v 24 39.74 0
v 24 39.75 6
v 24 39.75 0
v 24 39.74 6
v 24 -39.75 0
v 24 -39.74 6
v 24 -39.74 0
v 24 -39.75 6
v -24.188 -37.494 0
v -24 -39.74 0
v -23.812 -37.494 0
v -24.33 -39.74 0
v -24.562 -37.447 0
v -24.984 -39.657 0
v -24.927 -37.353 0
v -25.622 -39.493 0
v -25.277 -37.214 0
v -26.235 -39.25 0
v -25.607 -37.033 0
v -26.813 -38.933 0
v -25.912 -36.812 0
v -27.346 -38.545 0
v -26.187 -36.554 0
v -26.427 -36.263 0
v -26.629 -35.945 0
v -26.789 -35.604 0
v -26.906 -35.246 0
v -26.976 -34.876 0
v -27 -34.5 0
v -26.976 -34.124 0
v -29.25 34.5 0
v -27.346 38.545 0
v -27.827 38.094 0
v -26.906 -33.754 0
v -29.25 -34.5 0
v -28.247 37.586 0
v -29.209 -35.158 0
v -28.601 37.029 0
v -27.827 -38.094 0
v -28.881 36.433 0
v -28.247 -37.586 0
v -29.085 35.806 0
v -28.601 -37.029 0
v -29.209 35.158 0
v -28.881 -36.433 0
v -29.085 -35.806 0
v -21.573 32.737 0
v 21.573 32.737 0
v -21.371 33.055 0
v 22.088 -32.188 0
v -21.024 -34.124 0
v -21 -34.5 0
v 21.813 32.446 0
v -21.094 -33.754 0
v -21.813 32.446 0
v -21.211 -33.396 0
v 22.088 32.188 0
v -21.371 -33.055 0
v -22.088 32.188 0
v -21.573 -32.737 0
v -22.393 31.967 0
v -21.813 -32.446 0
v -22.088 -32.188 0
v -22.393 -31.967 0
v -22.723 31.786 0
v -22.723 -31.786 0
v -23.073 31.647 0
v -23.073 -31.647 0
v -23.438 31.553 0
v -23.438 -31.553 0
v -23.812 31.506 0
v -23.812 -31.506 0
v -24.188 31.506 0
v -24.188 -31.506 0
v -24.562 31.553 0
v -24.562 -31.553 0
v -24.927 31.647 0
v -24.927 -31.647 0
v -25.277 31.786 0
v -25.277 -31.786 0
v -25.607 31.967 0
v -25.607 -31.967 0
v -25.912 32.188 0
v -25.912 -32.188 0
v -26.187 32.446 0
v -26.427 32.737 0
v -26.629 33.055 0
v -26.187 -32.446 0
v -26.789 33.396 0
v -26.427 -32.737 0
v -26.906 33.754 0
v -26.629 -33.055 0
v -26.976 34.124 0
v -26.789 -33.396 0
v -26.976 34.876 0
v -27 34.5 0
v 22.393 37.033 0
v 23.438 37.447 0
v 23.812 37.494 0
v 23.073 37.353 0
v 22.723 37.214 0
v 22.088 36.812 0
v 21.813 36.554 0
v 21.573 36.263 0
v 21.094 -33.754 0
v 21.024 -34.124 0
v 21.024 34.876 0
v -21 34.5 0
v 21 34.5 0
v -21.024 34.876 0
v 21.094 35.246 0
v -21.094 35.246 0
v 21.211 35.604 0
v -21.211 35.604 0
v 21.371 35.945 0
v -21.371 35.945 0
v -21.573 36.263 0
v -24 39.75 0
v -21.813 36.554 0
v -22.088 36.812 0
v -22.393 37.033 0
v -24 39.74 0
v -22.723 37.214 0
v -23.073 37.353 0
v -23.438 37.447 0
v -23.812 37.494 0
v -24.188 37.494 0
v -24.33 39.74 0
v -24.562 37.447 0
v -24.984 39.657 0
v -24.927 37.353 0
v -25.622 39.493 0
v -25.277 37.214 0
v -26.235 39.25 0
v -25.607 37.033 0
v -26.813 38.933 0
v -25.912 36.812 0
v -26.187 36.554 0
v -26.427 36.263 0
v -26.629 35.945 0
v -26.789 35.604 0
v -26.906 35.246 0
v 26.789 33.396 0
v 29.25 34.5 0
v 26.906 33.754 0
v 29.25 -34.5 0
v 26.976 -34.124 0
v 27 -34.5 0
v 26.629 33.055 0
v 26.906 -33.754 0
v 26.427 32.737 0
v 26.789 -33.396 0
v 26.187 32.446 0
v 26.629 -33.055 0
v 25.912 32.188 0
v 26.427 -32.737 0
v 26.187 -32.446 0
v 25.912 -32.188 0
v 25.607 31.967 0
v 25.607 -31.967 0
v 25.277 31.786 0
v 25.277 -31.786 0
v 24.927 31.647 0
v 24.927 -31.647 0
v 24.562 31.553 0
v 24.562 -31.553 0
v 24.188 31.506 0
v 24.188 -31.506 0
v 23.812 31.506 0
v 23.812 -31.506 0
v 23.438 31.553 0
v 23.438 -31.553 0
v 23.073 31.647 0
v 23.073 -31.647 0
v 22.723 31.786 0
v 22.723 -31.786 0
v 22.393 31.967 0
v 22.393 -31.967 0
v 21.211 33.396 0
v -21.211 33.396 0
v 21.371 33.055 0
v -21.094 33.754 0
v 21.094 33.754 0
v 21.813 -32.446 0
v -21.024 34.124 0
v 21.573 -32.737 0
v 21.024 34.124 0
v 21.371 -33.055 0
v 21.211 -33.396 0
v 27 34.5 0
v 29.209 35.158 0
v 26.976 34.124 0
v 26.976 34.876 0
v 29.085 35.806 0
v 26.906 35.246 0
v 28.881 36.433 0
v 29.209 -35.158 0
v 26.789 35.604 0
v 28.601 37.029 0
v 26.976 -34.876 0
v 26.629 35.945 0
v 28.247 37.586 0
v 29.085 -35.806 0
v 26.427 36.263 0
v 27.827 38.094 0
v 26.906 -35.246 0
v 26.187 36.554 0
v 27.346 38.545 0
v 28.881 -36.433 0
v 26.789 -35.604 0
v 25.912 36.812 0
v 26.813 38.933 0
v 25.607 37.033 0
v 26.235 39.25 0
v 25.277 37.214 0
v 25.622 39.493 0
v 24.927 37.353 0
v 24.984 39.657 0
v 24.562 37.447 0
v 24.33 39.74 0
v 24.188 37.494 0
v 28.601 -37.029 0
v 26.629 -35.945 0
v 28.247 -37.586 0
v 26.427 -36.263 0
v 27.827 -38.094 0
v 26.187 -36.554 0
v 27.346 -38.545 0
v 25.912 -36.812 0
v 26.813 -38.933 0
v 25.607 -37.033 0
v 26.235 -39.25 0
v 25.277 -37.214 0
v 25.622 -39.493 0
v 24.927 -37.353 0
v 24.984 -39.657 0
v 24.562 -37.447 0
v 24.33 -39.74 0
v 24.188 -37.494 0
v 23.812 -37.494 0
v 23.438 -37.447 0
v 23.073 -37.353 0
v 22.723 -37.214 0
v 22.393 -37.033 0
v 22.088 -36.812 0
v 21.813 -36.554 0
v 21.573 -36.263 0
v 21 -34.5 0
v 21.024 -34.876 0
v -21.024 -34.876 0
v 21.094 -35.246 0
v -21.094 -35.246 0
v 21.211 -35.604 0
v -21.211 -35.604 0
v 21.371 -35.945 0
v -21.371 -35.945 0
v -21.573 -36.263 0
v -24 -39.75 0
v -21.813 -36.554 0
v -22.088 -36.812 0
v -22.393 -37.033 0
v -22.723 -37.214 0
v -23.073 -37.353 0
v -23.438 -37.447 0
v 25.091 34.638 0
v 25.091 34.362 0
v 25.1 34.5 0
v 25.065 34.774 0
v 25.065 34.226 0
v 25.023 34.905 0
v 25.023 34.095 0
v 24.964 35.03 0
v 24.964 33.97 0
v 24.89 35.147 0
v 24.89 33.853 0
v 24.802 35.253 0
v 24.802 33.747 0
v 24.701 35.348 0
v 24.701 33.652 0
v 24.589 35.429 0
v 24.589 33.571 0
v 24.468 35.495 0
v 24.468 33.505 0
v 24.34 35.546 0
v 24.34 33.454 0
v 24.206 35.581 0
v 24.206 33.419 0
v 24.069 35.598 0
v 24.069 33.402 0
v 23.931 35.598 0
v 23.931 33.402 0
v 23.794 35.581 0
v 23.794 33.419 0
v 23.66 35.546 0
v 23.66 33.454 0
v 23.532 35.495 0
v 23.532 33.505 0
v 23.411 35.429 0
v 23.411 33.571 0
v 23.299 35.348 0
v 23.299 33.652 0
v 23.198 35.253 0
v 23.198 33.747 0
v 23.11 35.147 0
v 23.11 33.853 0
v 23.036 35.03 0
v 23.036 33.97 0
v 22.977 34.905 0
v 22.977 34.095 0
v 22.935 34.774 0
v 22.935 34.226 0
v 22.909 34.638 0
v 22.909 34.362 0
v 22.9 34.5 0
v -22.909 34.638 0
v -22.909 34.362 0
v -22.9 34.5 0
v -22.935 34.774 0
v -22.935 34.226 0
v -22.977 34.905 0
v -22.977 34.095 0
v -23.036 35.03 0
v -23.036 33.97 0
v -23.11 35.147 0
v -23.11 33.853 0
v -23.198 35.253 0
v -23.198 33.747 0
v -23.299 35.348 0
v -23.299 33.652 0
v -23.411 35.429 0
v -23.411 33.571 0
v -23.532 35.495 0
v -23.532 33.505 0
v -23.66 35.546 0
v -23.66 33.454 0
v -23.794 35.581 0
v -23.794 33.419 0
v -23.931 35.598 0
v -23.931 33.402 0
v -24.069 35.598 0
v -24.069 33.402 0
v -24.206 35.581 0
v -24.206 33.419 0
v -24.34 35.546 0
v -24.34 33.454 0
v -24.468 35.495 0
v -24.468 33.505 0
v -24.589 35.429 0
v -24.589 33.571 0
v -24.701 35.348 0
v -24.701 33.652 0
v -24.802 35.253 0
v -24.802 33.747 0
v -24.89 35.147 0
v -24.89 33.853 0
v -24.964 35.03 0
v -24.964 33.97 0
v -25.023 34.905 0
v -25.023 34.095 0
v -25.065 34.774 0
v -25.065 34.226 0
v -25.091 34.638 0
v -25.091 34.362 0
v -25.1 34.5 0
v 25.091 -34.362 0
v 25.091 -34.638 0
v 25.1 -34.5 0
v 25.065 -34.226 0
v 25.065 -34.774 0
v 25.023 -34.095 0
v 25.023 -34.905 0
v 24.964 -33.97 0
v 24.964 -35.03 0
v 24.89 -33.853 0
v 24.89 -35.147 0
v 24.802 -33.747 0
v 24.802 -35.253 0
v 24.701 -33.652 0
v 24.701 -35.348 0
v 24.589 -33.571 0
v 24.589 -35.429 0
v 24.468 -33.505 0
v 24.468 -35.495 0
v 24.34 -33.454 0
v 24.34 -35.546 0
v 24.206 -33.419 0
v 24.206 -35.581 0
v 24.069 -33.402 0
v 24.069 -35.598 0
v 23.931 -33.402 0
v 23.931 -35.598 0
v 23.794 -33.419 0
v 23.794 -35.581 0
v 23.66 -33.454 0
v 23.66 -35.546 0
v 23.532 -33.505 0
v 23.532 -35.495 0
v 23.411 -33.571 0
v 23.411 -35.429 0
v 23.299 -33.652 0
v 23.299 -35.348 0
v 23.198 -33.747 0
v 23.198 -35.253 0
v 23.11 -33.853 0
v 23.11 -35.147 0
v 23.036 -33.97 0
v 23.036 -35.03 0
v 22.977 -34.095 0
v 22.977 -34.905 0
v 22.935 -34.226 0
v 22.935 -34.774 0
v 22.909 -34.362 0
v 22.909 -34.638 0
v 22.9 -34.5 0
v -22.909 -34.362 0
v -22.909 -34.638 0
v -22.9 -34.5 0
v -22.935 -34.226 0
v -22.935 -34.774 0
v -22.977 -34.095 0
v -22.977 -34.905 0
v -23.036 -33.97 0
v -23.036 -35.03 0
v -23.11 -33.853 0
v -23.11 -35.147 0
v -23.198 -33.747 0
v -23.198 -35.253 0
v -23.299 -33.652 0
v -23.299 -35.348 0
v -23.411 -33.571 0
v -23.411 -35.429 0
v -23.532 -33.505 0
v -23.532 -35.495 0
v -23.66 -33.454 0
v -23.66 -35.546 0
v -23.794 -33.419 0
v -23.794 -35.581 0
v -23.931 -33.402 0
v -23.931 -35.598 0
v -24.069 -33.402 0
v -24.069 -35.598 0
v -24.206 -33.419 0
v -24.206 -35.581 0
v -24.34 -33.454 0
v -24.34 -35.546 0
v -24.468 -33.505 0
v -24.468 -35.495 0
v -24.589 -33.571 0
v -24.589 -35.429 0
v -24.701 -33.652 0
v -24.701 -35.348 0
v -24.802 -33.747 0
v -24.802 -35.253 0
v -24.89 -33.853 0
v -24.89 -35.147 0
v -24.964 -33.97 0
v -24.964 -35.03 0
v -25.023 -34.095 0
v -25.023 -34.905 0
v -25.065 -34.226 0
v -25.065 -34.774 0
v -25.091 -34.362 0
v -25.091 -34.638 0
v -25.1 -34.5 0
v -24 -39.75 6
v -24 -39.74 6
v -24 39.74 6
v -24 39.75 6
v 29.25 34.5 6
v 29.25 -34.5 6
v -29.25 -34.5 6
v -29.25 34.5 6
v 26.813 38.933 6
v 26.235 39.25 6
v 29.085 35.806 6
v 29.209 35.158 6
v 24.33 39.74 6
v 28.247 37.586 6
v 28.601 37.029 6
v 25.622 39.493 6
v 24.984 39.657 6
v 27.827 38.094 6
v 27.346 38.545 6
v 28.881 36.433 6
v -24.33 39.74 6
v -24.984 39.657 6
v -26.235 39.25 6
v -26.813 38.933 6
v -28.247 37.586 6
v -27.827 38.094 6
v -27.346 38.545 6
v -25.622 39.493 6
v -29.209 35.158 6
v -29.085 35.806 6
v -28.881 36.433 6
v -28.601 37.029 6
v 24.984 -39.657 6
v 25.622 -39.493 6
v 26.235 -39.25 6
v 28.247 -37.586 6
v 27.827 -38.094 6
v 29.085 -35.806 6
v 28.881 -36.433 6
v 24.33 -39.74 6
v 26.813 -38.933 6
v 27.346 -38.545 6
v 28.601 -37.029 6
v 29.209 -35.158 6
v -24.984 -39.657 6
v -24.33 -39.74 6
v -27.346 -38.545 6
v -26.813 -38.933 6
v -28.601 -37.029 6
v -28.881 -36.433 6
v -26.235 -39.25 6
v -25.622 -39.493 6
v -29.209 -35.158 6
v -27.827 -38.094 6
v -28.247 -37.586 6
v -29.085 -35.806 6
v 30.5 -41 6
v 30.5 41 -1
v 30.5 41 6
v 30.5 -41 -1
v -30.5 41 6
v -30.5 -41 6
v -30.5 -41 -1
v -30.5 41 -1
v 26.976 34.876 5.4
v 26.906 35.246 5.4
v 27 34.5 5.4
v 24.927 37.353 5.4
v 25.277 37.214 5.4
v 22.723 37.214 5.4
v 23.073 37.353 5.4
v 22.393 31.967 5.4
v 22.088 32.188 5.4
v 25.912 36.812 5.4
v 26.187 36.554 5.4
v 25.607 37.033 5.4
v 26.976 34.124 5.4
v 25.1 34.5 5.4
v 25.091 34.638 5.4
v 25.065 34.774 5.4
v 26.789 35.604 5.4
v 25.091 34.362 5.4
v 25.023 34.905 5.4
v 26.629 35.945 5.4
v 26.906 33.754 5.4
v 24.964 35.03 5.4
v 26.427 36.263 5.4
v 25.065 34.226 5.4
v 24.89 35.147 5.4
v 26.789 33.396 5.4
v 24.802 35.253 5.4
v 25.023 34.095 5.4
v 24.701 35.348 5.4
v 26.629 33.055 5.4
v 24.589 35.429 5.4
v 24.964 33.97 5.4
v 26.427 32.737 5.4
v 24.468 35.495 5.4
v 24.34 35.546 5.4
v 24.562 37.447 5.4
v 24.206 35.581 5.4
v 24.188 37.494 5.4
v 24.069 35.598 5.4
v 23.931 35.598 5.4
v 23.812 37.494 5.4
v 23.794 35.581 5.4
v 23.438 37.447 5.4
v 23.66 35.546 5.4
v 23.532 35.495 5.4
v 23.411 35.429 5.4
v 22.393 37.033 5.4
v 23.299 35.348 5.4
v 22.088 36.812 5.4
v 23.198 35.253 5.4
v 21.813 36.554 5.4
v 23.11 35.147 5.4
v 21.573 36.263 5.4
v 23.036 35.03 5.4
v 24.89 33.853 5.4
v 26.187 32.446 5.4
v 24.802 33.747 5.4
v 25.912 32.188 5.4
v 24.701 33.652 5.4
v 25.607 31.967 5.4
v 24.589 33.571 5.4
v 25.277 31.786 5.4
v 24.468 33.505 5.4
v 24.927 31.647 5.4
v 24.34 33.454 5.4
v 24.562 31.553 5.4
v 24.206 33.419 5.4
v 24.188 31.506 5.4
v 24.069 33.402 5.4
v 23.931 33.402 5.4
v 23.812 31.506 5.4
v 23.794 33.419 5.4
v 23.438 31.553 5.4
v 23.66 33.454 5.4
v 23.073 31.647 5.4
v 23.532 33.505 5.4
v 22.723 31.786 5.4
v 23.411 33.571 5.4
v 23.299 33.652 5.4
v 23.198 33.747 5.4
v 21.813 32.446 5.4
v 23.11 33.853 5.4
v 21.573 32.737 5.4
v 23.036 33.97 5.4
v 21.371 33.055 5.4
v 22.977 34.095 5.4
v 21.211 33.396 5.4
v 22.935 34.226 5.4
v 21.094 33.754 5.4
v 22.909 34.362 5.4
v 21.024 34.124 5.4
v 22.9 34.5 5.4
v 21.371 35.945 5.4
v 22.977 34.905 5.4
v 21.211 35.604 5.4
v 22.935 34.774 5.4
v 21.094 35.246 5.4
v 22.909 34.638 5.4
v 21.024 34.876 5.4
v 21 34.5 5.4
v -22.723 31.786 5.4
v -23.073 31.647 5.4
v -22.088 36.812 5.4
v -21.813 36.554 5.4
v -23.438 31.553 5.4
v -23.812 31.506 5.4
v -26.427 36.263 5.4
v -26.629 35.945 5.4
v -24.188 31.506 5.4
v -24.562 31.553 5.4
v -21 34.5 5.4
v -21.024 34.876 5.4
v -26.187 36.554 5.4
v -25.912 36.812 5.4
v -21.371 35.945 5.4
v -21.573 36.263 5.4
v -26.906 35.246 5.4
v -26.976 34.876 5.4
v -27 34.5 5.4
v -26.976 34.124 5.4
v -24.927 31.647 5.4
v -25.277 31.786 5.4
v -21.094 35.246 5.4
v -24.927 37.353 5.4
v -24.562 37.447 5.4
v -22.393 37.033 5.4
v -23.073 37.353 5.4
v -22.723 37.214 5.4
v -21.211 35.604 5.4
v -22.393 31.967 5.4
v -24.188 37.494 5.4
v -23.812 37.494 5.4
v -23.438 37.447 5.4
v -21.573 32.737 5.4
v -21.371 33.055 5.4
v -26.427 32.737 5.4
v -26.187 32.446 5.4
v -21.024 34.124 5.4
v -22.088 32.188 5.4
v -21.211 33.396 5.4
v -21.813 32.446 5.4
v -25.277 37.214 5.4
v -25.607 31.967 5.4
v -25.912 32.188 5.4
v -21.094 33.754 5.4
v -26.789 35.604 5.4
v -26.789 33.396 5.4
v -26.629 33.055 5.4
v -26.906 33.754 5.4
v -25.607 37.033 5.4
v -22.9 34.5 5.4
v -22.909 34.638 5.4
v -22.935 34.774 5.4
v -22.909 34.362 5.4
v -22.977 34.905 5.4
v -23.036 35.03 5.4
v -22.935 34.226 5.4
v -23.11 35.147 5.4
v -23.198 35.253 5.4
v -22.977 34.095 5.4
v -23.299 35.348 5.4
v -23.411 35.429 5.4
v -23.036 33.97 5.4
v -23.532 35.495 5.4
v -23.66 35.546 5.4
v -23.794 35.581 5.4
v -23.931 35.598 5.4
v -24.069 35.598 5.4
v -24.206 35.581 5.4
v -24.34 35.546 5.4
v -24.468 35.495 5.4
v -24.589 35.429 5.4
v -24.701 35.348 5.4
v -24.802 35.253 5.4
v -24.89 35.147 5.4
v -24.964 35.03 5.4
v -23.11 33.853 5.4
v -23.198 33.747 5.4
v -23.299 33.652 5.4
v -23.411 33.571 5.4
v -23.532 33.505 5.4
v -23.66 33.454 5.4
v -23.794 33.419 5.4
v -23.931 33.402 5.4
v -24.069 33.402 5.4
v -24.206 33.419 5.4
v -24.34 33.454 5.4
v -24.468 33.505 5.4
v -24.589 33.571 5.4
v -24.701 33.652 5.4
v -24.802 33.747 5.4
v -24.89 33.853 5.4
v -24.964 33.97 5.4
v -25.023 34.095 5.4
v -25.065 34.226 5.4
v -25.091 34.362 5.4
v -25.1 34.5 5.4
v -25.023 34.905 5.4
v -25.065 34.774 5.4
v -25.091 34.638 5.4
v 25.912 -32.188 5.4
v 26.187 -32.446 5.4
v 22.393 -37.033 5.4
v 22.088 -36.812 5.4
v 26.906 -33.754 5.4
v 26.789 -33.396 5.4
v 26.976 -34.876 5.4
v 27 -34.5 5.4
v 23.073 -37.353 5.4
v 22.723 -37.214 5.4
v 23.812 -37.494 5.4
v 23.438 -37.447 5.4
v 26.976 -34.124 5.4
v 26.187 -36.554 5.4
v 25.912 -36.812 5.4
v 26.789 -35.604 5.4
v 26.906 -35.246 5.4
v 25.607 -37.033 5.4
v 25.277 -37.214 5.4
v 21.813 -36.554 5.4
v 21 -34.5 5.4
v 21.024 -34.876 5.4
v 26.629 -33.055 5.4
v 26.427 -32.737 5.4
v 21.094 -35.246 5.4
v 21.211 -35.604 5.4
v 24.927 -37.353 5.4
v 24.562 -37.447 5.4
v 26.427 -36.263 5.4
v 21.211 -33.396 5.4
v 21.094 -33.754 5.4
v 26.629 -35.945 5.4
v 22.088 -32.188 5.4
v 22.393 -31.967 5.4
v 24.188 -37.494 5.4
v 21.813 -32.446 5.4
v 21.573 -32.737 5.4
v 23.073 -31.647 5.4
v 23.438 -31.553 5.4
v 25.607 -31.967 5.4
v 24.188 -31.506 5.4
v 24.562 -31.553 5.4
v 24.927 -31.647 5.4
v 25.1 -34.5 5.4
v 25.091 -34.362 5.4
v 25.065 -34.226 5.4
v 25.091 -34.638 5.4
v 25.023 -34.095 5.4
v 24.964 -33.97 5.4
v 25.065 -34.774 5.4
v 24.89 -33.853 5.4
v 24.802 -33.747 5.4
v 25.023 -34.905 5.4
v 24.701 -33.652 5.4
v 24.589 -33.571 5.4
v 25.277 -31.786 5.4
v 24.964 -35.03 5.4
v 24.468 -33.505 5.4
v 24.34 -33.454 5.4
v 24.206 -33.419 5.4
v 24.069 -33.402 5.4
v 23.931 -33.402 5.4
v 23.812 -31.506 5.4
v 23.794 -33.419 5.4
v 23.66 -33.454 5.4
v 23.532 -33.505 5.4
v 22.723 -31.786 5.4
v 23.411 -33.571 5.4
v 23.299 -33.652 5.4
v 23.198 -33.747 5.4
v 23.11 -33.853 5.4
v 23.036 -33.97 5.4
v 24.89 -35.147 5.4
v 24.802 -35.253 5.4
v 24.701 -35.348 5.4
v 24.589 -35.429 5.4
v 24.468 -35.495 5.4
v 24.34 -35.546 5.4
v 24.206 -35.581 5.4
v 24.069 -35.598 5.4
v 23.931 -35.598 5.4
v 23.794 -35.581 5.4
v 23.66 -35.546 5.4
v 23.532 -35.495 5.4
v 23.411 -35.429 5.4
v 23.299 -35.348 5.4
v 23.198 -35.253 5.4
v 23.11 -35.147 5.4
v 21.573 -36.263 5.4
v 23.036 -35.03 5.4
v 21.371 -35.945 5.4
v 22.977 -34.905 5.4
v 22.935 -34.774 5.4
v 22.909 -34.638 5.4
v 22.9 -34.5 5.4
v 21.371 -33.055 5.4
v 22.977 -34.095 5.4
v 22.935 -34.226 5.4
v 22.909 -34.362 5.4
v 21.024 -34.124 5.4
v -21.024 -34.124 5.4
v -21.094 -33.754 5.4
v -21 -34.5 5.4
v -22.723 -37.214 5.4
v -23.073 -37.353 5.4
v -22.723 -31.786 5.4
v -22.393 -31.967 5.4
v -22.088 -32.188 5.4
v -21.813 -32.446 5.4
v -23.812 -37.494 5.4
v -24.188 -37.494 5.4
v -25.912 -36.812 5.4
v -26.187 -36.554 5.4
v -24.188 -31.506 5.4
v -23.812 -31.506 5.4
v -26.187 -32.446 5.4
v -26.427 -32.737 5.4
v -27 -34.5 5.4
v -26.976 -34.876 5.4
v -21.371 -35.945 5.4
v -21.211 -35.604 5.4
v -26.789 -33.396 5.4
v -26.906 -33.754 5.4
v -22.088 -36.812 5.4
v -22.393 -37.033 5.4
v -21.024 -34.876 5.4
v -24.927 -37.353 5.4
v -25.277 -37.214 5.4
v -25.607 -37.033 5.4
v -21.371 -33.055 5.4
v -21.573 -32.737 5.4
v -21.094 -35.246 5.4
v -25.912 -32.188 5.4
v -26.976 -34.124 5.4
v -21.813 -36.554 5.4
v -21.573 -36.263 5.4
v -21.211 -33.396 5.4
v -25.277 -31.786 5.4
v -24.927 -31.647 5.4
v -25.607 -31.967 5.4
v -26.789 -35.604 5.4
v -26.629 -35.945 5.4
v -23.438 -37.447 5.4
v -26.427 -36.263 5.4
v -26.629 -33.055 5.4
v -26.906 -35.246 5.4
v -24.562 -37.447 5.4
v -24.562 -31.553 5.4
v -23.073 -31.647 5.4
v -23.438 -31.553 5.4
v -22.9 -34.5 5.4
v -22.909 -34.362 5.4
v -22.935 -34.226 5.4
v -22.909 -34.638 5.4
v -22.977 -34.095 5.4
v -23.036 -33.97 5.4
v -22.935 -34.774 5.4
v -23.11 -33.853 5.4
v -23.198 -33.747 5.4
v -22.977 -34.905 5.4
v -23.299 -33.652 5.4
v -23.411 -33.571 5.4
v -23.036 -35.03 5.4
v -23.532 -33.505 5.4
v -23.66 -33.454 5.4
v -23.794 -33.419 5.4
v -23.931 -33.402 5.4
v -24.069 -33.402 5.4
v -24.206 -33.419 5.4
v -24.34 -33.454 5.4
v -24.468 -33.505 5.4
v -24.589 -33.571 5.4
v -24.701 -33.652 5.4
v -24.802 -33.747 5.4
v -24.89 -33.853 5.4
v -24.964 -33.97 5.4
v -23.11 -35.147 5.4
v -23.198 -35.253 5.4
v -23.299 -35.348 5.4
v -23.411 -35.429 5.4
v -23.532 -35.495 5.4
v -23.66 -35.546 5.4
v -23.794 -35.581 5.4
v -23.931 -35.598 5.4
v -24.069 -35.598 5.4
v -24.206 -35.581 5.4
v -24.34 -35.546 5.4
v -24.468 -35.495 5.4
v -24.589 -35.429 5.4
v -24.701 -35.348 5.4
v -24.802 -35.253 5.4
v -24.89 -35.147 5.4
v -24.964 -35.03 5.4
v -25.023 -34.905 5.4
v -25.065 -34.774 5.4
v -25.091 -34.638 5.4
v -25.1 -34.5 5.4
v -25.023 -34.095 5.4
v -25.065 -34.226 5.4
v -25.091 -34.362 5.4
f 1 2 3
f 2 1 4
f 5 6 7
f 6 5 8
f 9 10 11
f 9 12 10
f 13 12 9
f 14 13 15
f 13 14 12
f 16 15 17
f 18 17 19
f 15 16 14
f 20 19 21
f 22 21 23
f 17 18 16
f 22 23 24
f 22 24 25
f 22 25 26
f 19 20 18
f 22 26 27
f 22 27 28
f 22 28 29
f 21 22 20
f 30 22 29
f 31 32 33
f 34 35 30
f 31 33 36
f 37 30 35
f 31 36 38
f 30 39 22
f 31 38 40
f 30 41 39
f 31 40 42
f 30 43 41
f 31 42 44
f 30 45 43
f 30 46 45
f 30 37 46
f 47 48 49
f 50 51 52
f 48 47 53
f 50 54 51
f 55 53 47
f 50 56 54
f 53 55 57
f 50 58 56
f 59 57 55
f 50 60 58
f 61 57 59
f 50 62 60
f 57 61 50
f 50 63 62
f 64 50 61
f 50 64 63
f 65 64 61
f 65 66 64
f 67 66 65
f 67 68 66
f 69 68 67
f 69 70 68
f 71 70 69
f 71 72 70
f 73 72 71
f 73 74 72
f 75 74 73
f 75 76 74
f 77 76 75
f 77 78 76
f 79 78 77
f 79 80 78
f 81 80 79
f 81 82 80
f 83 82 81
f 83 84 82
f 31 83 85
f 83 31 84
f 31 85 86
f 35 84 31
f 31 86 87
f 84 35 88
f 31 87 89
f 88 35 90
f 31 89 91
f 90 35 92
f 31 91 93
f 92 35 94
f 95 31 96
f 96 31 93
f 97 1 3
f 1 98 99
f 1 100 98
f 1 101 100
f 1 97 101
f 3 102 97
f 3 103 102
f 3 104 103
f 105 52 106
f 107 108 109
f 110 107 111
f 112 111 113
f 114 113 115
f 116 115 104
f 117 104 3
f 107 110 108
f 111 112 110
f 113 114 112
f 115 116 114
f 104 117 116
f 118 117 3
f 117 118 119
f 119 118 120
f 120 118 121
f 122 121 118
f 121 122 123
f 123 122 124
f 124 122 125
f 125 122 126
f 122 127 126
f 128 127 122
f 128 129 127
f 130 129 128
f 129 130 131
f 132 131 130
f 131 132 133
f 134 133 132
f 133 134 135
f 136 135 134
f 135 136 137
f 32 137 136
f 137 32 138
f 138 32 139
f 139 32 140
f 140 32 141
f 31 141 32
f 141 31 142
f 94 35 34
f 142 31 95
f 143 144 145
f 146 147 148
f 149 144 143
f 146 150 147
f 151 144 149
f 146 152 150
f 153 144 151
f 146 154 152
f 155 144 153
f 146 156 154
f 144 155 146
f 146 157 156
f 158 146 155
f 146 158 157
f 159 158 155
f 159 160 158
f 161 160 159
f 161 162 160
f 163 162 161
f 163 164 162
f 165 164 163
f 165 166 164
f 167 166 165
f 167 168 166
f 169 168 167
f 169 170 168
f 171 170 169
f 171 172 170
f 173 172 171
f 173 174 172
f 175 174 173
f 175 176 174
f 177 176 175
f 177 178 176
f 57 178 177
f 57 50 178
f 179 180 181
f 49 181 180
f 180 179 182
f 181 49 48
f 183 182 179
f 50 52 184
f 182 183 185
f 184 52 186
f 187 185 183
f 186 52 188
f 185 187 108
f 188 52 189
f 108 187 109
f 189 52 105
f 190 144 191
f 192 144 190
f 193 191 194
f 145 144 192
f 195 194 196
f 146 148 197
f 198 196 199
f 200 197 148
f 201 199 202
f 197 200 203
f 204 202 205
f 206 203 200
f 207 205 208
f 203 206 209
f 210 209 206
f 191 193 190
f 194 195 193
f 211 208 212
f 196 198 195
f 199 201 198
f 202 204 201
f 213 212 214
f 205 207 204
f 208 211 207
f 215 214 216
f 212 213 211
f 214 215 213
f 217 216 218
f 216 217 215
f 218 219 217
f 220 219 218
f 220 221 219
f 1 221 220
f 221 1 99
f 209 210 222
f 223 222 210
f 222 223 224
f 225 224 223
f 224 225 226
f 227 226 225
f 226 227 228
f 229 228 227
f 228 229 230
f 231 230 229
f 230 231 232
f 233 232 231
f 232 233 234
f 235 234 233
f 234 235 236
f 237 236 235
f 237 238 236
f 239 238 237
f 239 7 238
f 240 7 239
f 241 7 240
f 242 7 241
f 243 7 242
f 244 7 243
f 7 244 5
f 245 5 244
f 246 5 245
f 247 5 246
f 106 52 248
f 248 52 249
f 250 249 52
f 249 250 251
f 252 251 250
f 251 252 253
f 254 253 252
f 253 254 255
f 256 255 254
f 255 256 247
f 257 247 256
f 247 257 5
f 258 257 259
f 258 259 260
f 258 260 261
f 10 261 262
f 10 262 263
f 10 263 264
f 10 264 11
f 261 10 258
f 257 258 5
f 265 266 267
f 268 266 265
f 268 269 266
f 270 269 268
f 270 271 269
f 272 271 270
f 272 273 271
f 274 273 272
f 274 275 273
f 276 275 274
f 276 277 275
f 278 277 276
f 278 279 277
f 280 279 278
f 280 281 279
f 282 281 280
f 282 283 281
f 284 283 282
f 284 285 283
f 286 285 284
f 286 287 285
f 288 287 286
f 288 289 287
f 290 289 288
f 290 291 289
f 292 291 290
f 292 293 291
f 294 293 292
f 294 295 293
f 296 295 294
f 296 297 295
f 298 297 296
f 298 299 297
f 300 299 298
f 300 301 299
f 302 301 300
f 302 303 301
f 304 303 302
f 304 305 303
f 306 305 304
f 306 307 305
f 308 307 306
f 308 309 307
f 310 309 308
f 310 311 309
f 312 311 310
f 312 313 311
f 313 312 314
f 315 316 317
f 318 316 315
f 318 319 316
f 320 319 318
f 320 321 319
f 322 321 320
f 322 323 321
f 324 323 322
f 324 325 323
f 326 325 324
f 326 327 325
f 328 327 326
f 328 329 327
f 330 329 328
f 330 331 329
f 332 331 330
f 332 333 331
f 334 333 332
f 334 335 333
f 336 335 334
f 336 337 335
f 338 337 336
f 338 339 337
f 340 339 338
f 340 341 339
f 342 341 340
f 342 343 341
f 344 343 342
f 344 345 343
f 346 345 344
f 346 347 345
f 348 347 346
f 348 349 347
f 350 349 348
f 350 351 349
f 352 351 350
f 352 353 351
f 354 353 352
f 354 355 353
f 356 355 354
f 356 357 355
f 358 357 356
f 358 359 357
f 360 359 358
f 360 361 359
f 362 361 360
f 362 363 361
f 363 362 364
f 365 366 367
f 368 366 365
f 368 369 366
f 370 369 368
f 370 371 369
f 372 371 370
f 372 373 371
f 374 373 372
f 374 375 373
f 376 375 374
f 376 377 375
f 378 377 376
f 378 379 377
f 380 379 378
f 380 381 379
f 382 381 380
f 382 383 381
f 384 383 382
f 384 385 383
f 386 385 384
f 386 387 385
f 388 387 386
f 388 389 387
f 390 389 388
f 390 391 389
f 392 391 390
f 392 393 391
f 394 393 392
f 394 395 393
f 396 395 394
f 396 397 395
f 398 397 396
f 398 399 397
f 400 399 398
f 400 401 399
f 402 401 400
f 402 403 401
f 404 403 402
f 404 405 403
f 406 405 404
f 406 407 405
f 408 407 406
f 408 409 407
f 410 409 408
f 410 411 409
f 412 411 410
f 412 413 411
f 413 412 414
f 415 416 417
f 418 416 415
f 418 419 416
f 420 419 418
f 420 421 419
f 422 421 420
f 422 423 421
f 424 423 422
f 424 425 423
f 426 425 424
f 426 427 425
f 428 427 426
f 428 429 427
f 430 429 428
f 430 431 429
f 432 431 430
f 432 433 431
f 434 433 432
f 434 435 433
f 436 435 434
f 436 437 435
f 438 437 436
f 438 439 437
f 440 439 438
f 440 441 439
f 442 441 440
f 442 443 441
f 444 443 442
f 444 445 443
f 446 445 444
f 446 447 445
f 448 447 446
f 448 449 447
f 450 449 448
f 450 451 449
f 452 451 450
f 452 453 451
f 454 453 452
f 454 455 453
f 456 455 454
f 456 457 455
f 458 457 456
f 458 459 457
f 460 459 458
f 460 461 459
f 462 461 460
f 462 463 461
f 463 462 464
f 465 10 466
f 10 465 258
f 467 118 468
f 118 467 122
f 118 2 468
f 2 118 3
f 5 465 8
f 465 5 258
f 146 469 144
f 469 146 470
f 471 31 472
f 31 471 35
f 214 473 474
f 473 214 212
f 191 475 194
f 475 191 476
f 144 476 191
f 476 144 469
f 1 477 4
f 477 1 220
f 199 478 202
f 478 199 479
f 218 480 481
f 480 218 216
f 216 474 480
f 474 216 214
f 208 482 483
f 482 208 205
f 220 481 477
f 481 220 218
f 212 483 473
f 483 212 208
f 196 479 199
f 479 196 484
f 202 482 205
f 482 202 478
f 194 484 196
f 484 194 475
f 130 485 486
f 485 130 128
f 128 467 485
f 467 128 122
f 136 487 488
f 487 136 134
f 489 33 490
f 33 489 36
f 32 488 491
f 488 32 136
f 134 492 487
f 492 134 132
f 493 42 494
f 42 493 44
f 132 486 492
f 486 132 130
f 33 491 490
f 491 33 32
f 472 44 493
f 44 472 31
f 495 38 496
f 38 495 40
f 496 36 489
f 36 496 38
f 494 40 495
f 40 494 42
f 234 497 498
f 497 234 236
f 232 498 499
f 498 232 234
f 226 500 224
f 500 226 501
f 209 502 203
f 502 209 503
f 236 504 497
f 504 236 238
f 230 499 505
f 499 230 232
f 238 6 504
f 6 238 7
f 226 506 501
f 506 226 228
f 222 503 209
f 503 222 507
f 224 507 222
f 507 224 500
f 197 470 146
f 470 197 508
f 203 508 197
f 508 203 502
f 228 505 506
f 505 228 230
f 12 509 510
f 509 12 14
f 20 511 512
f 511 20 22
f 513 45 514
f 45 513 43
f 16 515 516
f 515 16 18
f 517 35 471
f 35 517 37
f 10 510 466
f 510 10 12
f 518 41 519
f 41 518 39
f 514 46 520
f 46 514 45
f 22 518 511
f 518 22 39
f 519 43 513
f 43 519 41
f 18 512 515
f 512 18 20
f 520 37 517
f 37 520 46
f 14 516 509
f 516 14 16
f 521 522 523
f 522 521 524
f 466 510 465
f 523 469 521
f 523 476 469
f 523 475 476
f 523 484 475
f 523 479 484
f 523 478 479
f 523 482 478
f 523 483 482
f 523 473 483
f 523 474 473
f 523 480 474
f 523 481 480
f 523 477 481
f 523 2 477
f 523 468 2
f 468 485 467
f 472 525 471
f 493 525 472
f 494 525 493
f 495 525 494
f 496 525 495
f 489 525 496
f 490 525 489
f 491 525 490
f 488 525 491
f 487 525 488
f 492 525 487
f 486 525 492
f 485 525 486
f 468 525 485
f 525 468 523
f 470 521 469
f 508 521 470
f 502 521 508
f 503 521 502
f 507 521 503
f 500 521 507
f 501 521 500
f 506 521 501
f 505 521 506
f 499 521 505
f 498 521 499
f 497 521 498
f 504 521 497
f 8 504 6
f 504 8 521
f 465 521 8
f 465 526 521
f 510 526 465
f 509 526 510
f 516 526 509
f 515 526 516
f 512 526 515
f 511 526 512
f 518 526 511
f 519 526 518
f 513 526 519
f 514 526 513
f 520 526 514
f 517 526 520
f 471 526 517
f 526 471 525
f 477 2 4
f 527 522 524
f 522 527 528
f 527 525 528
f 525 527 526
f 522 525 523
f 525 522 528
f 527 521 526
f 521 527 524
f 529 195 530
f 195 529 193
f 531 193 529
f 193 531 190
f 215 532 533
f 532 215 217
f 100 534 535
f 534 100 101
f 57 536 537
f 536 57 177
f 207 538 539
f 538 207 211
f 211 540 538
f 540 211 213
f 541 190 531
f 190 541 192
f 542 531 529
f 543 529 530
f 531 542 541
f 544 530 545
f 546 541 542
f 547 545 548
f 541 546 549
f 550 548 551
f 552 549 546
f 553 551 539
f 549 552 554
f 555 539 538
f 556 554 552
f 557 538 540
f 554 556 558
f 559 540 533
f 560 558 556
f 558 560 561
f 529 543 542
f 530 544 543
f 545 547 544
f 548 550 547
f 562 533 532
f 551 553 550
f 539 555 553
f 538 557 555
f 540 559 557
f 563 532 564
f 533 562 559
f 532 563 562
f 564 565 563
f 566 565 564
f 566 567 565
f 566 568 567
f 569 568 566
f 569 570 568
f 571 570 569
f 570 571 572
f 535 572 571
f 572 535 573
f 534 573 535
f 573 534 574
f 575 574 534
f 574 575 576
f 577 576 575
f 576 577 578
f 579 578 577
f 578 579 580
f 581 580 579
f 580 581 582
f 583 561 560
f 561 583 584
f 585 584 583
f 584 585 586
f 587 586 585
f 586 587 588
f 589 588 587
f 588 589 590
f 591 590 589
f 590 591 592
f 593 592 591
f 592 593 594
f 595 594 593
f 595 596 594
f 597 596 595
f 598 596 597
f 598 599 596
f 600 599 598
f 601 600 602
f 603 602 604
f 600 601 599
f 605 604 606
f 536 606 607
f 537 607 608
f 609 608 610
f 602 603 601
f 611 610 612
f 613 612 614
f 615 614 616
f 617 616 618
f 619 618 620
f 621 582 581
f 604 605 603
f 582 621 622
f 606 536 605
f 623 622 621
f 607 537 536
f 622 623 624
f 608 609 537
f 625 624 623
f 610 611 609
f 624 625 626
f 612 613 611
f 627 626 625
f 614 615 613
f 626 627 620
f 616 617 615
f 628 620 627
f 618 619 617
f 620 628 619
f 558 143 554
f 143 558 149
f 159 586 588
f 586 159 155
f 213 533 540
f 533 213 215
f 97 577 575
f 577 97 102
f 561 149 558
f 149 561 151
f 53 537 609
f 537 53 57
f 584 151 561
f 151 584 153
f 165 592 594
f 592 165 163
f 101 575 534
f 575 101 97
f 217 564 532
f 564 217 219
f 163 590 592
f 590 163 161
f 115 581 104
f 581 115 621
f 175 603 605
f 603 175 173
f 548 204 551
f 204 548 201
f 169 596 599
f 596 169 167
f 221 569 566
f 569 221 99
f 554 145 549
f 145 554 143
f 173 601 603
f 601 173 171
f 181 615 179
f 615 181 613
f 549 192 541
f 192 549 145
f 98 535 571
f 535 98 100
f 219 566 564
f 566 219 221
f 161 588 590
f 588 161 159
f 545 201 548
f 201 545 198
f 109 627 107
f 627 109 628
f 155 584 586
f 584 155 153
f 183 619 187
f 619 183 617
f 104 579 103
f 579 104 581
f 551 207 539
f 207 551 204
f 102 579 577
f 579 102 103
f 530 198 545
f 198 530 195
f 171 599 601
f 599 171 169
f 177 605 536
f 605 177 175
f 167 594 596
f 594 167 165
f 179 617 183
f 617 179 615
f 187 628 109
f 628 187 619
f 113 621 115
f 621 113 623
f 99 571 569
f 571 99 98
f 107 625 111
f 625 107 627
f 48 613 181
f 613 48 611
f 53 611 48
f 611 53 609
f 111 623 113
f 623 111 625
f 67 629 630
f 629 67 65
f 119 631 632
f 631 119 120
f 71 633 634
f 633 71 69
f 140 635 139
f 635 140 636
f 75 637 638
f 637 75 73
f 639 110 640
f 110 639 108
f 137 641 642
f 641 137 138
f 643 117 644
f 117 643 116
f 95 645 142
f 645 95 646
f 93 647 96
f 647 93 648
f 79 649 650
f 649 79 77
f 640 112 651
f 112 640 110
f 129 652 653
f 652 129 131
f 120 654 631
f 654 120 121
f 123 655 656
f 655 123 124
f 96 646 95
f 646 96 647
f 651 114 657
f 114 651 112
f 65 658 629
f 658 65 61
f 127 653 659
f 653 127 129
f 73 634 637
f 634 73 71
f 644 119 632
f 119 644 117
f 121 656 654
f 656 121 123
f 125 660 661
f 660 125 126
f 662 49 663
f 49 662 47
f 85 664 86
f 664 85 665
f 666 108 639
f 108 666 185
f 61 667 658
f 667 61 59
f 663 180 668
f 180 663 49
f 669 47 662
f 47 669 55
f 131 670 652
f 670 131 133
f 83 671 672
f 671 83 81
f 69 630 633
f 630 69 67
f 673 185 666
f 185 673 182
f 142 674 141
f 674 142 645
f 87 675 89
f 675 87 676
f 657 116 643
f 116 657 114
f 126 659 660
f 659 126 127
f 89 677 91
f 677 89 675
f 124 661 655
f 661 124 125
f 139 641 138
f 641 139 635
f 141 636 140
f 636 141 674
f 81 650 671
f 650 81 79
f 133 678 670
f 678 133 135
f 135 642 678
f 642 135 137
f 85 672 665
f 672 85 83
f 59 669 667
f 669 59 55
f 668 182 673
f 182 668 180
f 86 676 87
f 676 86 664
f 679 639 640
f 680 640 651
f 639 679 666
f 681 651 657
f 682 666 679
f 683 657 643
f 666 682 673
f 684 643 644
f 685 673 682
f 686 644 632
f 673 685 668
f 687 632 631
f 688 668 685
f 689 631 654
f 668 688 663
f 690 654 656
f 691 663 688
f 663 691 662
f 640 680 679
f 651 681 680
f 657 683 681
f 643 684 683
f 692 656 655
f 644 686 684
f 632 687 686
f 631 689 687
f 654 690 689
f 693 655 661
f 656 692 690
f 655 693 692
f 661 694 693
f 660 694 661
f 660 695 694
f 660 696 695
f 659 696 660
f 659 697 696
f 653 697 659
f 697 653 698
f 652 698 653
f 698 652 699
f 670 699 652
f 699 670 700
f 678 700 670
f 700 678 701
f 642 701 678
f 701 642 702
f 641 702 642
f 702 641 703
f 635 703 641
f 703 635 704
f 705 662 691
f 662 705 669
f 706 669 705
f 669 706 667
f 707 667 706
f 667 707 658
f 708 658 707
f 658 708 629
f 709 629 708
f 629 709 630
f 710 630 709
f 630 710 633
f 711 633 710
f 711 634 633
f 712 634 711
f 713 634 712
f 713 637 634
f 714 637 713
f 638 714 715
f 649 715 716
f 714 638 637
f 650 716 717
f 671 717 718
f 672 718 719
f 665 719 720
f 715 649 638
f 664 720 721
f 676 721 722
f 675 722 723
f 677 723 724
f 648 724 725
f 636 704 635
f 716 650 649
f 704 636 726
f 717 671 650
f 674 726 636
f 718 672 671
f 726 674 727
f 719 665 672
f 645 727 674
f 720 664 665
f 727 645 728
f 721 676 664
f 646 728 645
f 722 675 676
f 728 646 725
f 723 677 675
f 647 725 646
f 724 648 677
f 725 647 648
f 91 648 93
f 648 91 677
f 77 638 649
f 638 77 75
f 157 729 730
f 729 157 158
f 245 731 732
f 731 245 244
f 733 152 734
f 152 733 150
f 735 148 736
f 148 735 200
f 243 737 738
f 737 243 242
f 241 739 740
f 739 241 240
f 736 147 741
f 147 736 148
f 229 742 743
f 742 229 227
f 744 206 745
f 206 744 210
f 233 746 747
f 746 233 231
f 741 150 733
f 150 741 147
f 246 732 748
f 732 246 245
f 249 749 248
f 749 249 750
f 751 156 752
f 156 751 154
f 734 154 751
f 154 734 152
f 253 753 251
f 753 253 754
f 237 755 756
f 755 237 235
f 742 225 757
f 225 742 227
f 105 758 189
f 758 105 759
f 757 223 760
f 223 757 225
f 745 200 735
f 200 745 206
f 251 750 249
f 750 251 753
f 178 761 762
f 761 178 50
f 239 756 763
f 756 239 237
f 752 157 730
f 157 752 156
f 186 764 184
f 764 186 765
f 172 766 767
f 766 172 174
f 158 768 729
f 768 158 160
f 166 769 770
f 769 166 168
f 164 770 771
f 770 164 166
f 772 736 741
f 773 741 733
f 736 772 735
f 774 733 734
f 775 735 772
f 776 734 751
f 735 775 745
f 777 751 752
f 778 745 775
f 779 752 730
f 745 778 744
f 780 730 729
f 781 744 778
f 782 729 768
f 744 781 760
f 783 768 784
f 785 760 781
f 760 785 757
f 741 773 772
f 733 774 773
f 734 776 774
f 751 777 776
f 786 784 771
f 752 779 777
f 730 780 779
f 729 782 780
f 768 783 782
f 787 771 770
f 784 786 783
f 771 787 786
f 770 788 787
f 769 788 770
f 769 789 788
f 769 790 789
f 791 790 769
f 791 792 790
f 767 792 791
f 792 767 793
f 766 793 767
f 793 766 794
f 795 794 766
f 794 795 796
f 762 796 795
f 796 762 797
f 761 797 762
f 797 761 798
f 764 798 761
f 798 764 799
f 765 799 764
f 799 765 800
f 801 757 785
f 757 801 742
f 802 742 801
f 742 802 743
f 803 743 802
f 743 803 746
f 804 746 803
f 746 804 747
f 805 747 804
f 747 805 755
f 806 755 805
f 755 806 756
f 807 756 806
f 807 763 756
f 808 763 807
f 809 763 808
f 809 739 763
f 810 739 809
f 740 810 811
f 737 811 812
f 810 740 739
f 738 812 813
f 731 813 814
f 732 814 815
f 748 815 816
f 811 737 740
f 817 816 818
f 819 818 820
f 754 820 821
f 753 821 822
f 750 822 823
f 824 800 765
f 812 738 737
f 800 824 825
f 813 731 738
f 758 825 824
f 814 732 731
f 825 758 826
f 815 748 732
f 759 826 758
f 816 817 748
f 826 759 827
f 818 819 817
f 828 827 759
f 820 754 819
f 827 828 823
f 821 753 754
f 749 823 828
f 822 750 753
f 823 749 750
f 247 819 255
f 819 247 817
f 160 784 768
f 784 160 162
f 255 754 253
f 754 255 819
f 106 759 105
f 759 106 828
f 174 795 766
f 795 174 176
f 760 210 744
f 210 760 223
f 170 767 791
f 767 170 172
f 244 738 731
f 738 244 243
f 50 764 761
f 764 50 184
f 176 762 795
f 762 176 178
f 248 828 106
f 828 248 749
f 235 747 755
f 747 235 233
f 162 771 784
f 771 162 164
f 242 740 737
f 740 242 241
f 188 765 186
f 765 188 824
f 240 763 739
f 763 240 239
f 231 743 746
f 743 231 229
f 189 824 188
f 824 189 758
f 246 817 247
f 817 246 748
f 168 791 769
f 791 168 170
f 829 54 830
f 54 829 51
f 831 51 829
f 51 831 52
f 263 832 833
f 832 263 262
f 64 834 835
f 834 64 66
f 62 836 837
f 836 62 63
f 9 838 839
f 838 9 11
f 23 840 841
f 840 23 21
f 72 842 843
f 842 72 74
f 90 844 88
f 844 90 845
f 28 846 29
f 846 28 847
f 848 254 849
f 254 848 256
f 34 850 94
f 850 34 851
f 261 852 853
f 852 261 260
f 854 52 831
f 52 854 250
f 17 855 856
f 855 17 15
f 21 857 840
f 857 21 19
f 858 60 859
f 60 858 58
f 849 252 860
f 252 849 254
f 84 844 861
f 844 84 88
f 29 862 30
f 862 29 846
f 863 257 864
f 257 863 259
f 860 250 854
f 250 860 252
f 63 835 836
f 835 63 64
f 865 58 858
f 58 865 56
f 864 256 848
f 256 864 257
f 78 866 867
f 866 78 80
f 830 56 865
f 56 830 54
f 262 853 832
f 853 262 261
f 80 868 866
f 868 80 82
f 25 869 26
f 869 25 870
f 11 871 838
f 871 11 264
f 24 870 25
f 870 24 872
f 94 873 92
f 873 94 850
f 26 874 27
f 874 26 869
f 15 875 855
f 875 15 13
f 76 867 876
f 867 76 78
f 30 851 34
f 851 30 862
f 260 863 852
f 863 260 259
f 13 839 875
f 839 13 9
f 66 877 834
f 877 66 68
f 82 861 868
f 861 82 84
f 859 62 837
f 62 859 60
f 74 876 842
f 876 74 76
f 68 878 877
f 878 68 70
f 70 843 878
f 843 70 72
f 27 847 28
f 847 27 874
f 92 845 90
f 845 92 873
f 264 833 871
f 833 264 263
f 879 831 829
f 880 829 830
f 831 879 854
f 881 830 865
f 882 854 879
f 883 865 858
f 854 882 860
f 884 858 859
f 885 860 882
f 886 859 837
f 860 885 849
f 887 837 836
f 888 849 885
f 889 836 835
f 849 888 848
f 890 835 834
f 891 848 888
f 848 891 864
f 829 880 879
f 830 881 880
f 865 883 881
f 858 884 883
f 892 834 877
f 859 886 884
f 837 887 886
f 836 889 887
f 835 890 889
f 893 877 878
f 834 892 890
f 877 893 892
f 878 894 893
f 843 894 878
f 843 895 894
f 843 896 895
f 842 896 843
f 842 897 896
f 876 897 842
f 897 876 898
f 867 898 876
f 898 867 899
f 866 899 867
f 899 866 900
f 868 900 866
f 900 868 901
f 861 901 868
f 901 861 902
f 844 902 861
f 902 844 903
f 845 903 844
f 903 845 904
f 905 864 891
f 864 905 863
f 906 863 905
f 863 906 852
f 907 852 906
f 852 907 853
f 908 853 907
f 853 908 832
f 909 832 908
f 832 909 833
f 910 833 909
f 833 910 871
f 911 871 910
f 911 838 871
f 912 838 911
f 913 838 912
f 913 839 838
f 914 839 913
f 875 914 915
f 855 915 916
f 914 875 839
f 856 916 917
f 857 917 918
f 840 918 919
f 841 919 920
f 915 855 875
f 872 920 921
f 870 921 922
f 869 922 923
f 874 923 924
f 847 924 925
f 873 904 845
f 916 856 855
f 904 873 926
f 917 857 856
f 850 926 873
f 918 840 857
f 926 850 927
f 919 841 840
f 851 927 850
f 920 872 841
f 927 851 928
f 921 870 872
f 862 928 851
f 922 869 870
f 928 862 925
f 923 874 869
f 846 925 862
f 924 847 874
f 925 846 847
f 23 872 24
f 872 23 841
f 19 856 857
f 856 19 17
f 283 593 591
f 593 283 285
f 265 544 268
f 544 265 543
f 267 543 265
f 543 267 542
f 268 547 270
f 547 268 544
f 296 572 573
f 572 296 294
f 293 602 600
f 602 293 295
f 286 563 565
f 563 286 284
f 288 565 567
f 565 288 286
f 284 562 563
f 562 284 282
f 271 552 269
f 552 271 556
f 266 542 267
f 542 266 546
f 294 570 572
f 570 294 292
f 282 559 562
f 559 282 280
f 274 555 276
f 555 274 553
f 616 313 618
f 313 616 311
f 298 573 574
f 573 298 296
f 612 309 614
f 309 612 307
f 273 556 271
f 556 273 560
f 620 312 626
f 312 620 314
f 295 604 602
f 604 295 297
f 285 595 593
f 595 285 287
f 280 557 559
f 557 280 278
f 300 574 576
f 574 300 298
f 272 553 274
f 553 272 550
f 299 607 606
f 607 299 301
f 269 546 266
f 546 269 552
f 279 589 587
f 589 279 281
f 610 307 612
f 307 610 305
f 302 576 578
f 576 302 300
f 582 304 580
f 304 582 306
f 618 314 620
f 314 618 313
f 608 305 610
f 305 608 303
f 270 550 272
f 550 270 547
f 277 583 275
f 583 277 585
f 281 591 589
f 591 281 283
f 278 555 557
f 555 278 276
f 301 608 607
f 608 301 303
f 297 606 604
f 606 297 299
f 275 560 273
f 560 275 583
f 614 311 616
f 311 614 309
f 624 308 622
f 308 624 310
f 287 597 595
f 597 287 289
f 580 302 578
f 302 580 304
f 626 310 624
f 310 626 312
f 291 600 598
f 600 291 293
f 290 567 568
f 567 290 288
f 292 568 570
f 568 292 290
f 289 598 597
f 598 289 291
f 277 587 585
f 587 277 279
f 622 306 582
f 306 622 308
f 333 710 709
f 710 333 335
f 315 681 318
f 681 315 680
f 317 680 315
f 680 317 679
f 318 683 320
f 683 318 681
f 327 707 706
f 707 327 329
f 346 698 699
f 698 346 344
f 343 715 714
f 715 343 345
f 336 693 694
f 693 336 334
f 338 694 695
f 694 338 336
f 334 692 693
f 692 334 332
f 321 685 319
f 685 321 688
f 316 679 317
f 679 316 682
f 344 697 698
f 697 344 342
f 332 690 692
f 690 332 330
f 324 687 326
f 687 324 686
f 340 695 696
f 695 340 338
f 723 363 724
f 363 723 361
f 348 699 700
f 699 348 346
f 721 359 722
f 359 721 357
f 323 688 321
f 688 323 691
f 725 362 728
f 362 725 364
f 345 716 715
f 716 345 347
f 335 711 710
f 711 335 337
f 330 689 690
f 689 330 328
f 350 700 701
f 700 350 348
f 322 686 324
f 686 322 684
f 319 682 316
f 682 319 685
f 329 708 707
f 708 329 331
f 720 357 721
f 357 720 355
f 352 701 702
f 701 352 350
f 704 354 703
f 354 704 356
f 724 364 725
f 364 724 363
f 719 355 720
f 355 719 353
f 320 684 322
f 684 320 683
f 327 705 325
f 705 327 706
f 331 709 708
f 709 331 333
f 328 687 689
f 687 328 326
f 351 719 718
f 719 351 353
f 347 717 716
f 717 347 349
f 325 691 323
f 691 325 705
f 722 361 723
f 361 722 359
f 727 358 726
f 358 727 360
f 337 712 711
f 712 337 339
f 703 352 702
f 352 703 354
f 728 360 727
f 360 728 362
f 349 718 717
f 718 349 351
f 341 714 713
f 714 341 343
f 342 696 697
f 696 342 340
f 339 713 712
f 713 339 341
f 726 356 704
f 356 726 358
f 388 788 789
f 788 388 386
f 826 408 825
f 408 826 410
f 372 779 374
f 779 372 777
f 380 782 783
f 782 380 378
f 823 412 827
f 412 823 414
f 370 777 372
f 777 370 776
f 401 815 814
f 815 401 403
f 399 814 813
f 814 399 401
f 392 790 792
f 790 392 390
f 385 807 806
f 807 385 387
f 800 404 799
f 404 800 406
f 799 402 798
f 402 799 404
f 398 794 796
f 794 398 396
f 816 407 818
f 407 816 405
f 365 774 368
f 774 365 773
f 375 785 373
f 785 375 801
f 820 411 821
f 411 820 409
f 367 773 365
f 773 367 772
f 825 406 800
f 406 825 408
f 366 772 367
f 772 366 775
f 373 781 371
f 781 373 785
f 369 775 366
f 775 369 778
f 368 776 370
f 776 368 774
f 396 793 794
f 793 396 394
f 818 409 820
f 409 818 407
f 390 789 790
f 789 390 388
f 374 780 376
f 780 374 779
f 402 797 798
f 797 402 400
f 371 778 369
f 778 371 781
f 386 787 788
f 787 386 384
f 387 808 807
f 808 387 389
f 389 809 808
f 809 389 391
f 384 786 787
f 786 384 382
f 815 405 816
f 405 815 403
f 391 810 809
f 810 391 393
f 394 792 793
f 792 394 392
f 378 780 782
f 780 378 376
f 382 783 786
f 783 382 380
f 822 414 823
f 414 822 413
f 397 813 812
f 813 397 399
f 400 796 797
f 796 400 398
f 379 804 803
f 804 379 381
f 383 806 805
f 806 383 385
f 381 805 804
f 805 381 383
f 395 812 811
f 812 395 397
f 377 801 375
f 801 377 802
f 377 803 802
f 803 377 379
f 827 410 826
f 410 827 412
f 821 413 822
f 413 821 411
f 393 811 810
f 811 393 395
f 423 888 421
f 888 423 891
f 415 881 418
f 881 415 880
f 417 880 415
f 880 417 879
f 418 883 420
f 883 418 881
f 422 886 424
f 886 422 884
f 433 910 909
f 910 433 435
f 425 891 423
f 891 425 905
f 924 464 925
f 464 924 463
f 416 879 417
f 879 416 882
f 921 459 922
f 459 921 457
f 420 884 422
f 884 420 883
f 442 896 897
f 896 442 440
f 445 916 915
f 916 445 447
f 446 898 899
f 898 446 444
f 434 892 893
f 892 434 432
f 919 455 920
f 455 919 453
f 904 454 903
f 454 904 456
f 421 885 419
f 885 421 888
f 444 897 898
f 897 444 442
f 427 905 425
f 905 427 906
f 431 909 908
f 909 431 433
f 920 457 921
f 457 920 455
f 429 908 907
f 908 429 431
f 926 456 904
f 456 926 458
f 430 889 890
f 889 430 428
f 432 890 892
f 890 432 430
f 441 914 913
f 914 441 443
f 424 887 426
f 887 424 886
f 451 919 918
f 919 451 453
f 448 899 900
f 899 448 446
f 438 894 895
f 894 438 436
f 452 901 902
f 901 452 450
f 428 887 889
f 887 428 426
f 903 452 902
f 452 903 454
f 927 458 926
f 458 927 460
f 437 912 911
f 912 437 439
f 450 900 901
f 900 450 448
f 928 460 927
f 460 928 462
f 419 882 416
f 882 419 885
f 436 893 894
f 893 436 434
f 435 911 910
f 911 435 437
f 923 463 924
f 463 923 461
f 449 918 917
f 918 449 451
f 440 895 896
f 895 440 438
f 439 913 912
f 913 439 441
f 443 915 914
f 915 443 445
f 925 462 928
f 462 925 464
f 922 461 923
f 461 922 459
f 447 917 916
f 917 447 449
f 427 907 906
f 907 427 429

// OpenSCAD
x = 58;
y = 79;
h = 7;

difference(){
translate([0, 0,  h/2-1]) cube([x+3, y+3, h],center=true);

    union(){
        _m=0.5;
        _r=5+(_m/2);
        translate([0, 0, 10/2  ]) cube([x+_m-(_r*2), y+_m, 10],center=true);
        translate([0, 0, 10/2  ]) cube([x+_m, y+_m-(_r*2), 10],center=true);
        translate([ off_x, off_y, 0])cylinder(r=_r,h=10);
        translate([-off_x, off_y, 0])cylinder(r=_r,h=10);
        translate([ off_x,-off_y, 0])cylinder(r=_r,h=10);
        translate([-off_x,-off_y, 0])cylinder(r=_r,h=10);
    }

}

off_x = (x/2-5);
off_y = (y/2-5);
$fn=50;

difference(){
    union(){
        translate([ off_x, off_y, 0])cylinder(r=3,h=h-1.6);
        translate([-off_x, off_y, 0])cylinder(r=3,h=h-1.6);
        translate([ off_x,-off_y, 0])cylinder(r=3,h=h-1.6);
        translate([-off_x,-off_y, 0])cylinder(r=3,h=h-1.6);
    }
    translate([ off_x, off_y, 0])cylinder(r=1.1,h=7);
    translate([-off_x, off_y, 0])cylinder(r=1.1,h=7);
    translate([ off_x,-off_y, 0])cylinder(r=1.1,h=7);
    translate([-off_x,-off_y, 0])cylinder(r=1.1,h=7);
}
